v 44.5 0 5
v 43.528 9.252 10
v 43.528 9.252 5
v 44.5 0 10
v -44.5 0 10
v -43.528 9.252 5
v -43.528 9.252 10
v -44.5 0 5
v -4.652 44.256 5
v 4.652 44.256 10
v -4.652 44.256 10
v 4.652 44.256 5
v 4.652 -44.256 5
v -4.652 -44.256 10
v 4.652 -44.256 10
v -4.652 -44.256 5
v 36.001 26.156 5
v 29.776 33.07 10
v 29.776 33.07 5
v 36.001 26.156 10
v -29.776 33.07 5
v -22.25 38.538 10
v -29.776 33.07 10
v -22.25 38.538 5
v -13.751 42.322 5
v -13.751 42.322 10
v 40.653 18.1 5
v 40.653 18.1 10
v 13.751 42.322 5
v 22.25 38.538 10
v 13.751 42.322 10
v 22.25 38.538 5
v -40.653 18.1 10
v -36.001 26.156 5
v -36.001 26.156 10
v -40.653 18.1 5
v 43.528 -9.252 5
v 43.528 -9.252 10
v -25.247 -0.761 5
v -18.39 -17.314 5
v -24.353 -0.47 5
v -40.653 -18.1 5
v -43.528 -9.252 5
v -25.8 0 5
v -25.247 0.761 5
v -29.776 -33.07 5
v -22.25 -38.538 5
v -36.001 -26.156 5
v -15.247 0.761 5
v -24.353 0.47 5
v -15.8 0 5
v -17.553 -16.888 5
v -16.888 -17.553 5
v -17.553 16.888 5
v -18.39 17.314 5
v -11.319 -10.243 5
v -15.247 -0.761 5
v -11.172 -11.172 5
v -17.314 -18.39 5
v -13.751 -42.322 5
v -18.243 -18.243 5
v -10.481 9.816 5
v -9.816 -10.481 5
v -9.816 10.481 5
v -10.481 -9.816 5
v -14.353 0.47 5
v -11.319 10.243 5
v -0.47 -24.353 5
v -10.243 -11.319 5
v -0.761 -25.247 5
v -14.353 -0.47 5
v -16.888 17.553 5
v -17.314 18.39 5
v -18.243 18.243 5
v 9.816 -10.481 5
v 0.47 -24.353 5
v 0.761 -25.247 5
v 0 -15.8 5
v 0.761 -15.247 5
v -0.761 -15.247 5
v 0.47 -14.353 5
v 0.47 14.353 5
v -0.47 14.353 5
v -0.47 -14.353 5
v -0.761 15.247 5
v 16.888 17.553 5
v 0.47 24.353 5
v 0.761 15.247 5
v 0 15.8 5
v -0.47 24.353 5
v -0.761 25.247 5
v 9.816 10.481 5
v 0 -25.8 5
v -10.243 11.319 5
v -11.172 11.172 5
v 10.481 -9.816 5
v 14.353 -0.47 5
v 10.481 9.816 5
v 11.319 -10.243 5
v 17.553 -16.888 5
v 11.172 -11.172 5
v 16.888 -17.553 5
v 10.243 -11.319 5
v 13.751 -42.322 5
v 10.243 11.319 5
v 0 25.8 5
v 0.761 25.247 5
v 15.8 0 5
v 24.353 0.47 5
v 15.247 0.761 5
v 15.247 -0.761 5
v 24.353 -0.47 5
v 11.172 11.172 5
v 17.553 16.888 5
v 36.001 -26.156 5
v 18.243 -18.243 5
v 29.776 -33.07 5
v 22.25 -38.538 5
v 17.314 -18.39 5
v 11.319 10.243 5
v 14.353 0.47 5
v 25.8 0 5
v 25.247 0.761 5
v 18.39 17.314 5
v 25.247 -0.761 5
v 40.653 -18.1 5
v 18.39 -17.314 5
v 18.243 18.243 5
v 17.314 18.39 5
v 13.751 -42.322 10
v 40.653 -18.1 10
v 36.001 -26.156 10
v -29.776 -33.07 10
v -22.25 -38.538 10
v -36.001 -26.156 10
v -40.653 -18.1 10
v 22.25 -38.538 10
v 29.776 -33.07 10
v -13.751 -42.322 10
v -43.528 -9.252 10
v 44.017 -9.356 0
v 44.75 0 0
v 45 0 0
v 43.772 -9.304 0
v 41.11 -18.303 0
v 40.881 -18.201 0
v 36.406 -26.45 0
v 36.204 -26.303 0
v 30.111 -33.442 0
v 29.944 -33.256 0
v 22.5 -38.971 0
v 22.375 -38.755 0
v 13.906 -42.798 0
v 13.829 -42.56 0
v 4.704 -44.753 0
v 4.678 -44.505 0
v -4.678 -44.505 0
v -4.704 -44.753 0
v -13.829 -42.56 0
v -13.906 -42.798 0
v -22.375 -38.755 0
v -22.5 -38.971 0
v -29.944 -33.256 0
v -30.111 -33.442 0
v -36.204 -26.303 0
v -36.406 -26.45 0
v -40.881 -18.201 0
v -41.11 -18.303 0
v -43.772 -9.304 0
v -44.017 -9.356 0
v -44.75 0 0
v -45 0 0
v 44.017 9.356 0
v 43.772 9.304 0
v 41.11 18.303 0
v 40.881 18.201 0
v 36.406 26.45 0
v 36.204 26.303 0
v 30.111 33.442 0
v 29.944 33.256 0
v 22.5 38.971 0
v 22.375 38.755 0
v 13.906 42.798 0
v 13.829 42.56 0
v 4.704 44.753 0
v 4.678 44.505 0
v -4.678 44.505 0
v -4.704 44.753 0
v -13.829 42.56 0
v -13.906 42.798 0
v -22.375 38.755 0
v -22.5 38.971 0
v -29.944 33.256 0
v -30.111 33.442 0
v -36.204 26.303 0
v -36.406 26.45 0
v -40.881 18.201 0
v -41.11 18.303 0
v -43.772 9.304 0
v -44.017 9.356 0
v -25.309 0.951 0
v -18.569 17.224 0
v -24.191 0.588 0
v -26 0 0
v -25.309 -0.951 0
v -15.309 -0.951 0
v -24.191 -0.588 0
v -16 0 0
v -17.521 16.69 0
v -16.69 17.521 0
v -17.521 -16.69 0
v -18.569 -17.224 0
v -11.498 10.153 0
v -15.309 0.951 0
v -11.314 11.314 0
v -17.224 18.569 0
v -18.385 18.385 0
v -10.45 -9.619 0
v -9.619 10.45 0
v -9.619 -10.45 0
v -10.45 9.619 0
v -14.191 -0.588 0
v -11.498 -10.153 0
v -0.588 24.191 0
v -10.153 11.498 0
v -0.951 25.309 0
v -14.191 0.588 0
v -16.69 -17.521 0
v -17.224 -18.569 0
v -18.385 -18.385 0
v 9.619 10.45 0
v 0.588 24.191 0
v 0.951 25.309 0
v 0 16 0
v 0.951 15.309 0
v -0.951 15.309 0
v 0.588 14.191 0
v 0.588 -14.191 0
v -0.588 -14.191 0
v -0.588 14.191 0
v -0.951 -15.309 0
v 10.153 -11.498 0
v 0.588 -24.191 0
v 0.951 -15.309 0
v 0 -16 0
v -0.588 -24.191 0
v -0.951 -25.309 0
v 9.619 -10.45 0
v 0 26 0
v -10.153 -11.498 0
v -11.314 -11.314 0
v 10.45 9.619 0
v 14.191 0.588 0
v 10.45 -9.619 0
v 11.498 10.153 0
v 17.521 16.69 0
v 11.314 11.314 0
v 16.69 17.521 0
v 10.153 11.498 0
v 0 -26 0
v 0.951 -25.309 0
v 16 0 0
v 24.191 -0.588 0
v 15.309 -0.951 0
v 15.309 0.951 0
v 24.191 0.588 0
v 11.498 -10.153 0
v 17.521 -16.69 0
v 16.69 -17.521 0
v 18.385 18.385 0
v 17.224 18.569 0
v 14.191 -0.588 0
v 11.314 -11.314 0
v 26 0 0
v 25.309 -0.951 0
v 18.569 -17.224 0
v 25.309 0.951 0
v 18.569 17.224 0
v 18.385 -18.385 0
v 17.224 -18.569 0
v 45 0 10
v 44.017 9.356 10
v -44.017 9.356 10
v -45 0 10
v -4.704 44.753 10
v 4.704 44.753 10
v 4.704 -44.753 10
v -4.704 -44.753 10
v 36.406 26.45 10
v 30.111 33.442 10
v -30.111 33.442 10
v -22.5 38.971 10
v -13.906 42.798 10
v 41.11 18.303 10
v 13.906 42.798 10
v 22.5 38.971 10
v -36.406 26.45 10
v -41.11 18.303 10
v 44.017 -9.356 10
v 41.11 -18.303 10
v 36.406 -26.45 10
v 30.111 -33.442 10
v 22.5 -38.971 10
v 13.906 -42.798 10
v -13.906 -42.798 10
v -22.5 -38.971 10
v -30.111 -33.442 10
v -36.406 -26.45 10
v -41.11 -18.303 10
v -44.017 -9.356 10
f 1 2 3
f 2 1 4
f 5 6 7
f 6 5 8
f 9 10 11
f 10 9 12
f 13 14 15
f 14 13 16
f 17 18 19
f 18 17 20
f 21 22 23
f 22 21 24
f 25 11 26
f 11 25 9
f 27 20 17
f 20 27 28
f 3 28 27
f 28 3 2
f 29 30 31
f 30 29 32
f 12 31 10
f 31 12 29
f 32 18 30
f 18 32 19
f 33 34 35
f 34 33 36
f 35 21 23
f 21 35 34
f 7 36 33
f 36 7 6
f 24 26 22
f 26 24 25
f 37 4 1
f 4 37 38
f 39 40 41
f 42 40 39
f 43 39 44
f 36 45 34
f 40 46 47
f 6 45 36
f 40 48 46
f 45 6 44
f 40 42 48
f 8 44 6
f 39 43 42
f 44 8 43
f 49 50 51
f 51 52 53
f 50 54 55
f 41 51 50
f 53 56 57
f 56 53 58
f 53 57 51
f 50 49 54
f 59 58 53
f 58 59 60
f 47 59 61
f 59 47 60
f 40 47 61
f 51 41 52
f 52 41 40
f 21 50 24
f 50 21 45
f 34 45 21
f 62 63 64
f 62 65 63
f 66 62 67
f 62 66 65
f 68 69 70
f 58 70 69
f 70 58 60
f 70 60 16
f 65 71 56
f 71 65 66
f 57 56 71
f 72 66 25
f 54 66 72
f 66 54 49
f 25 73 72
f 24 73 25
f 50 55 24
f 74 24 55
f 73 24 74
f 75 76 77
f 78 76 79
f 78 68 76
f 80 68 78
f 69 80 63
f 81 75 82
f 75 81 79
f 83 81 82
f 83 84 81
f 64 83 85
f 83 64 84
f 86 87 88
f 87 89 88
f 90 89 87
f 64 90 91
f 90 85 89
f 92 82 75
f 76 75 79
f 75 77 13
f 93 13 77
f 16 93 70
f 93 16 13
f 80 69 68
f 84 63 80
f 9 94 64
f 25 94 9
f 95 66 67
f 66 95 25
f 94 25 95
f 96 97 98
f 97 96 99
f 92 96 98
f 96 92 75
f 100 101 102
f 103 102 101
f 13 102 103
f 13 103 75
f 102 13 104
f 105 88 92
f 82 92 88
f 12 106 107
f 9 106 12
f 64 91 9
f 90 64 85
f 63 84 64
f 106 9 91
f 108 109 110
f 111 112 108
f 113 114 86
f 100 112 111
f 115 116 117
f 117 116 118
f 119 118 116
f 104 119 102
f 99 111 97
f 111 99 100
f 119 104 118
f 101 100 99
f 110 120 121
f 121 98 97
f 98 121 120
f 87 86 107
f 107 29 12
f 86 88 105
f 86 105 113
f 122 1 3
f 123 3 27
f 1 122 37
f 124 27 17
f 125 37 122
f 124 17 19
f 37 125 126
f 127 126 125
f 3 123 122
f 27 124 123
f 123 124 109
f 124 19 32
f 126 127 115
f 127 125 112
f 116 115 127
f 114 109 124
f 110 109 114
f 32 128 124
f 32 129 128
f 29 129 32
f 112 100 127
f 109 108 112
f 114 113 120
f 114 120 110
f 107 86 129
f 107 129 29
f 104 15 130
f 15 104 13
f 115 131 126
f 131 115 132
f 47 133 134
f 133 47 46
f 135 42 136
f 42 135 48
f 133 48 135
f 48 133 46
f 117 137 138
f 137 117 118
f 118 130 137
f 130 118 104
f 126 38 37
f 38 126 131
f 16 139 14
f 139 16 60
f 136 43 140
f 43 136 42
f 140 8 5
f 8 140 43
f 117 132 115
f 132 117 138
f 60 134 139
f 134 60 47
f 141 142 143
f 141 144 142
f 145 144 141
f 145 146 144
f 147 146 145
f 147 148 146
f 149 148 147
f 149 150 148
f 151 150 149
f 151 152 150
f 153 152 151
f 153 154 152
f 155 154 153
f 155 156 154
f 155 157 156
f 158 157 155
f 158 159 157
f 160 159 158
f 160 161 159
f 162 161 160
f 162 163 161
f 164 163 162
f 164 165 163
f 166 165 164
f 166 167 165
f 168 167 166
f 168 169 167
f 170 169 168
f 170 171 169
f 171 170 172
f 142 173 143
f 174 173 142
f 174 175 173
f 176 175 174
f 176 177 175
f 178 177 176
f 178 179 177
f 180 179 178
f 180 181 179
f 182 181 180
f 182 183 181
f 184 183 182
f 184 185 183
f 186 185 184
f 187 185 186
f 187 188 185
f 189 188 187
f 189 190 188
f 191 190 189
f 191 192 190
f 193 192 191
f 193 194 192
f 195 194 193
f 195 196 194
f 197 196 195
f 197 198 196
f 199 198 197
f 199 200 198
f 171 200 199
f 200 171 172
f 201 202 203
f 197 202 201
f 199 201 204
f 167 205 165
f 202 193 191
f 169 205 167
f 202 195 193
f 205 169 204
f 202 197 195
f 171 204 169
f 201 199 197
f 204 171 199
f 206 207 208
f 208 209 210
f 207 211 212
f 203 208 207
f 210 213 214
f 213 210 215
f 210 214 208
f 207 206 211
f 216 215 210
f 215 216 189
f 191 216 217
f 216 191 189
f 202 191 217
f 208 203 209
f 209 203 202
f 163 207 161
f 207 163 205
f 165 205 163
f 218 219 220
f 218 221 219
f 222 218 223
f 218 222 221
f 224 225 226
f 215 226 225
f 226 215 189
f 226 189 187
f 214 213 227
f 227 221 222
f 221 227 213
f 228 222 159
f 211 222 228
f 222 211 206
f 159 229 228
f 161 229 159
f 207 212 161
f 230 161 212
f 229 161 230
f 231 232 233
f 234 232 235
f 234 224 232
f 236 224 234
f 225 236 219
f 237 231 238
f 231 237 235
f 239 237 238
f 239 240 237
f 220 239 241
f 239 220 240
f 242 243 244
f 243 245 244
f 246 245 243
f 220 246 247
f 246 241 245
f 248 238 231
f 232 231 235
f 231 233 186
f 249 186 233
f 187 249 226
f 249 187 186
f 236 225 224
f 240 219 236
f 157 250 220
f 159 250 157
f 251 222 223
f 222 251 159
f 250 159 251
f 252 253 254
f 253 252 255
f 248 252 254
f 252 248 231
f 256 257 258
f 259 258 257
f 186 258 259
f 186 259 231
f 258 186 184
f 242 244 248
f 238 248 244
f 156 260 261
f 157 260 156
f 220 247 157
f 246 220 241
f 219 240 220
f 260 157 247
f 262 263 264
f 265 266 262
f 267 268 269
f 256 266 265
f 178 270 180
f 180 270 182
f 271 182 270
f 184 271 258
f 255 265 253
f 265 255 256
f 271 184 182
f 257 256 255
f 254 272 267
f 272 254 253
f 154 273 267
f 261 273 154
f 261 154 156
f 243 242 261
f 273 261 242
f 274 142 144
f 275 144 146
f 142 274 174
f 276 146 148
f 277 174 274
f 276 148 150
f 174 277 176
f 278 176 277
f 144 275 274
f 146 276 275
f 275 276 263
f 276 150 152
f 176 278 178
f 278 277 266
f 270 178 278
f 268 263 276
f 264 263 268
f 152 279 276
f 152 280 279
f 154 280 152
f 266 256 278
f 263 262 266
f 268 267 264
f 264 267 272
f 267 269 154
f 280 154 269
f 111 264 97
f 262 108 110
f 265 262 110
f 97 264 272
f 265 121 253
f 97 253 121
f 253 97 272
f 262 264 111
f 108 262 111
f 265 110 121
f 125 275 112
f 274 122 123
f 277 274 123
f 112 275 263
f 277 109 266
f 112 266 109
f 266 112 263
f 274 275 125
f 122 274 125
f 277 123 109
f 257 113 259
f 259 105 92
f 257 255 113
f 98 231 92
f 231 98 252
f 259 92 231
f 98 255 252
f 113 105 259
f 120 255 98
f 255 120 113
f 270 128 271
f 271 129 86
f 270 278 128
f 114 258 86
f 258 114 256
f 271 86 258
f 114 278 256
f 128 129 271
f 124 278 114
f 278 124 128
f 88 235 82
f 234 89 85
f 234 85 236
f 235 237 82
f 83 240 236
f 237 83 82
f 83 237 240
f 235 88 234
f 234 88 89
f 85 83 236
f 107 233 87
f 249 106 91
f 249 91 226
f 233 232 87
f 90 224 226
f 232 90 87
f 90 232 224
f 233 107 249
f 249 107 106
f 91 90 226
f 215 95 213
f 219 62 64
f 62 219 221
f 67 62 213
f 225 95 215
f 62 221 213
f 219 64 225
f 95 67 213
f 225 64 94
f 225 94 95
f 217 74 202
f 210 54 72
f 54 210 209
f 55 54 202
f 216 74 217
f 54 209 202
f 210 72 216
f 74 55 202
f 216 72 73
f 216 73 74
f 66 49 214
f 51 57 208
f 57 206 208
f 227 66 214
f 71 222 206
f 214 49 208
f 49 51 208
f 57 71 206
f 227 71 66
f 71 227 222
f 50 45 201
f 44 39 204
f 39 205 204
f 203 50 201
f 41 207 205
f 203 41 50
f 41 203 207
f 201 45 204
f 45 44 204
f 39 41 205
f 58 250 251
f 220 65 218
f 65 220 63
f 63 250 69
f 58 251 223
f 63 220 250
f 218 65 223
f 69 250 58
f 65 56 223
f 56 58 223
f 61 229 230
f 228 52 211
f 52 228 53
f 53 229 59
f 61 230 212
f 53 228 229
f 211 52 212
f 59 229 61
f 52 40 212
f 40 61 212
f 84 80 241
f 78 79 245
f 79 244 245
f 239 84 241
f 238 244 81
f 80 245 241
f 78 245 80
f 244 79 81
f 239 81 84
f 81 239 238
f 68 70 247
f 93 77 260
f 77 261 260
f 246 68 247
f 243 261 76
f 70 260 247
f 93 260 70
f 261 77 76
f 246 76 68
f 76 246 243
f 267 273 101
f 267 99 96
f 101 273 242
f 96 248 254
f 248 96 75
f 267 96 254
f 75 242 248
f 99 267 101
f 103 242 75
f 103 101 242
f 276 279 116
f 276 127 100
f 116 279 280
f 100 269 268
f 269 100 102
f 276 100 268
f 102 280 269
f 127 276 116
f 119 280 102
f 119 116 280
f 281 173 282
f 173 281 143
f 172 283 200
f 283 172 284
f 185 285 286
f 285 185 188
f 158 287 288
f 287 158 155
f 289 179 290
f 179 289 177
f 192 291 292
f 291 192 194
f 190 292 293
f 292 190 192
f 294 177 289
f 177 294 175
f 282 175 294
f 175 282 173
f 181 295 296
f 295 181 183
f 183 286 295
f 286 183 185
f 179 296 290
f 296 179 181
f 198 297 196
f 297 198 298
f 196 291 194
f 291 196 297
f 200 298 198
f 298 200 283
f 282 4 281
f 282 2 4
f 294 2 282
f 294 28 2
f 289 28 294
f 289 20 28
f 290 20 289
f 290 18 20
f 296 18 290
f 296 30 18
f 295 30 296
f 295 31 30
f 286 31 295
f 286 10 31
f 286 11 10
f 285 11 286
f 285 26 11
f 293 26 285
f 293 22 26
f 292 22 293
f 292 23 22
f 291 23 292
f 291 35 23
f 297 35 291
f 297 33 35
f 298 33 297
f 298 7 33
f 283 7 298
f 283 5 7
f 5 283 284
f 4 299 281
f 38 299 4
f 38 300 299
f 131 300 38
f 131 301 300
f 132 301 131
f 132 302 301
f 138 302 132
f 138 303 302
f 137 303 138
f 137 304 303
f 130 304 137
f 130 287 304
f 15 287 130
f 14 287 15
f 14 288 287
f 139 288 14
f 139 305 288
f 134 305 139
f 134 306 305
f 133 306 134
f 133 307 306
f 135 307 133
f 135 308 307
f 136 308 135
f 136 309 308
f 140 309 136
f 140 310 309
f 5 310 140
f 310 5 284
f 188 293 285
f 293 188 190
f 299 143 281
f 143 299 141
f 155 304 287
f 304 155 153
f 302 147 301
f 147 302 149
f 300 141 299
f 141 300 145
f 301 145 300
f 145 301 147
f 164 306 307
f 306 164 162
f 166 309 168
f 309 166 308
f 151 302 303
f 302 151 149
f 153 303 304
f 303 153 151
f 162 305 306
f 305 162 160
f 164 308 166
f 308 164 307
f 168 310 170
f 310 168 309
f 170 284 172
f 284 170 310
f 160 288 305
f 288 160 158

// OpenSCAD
// Petri dish lid with holes for needle electrodes
// Electrodes are arranged in pairs, in a radial pattern

// Parameters
diameter = 90;          // Total outer diameter of the lid
top_height = 5;         // Thickness of the top cover

rim_height = 5;         // Height of the rim extending below the lid
rim_thickness = 0.5;    // Thickness of the rim/sidewalls
rim_offset = 1;         // Extra clearance for snug fit over the dish

num_pairs = 8;          // Number of hole pairs (8 pairs = 16 holes)
pair_separation = 10;   // Separation distance between holes in a pair
placement_radius = 20;  // Distance from the center for hole placement
hole_radius_min = 0.8;  // Inner radius of the tapered electrode hole
hole_radius_max = 1.0;  // Outer radius of the tapered electrode hole


// Create the lid with a rim
module lid() {
    total_height = top_height + rim_height;
    difference() {
        // Main body of the lid
        cylinder(d=diameter, h=total_height, center=false);

        // Hollow out the lid (separate top and sidewall thickness)
        translate([0, 0, top_height])
            difference() {
                // Hollow out the full height of the lid
                cylinder(d=diameter - 2 * rim_thickness, h=total_height, center=false);

                // Remove extra material at the top for thinner sidewalls
                translate([0, 0, -top_height])
                    cylinder(d=diameter - 2 * rim_thickness, h=top_height, center=false);
            }

        // Add a rim for secure fit
        translate([0, 0, -rim_height])
            difference() {
                cylinder(d=diameter + rim_offset, h=rim_height, center=false);
                translate([0, 0, rim_thickness])
                    cylinder(d=diameter - rim_thickness, h=rim_height, center=false);
            }

        // Create holes for electrodes
        electrode_holes();
    }
}

// Create holes for electrodes, placed in the top only
module electrode_holes() {
    for (i = [0:num_pairs-1]) {
        angle = i * 360 / num_pairs;

        for (offset = [-pair_separation / 2, pair_separation / 2]) {
            // Calculate hole positions
            x = (placement_radius + offset) * cos(angle);
            y = (placement_radius + offset) * sin(angle);

            // Create tapered cone
            translate([x, y, 0])
                rotate([0, 0, angle])
                    cylinder(r1=hole_radius_max, r2=hole_radius_min, h=top_height, center=false);
        }
    }
}

// Export the lid with rim
lid();
